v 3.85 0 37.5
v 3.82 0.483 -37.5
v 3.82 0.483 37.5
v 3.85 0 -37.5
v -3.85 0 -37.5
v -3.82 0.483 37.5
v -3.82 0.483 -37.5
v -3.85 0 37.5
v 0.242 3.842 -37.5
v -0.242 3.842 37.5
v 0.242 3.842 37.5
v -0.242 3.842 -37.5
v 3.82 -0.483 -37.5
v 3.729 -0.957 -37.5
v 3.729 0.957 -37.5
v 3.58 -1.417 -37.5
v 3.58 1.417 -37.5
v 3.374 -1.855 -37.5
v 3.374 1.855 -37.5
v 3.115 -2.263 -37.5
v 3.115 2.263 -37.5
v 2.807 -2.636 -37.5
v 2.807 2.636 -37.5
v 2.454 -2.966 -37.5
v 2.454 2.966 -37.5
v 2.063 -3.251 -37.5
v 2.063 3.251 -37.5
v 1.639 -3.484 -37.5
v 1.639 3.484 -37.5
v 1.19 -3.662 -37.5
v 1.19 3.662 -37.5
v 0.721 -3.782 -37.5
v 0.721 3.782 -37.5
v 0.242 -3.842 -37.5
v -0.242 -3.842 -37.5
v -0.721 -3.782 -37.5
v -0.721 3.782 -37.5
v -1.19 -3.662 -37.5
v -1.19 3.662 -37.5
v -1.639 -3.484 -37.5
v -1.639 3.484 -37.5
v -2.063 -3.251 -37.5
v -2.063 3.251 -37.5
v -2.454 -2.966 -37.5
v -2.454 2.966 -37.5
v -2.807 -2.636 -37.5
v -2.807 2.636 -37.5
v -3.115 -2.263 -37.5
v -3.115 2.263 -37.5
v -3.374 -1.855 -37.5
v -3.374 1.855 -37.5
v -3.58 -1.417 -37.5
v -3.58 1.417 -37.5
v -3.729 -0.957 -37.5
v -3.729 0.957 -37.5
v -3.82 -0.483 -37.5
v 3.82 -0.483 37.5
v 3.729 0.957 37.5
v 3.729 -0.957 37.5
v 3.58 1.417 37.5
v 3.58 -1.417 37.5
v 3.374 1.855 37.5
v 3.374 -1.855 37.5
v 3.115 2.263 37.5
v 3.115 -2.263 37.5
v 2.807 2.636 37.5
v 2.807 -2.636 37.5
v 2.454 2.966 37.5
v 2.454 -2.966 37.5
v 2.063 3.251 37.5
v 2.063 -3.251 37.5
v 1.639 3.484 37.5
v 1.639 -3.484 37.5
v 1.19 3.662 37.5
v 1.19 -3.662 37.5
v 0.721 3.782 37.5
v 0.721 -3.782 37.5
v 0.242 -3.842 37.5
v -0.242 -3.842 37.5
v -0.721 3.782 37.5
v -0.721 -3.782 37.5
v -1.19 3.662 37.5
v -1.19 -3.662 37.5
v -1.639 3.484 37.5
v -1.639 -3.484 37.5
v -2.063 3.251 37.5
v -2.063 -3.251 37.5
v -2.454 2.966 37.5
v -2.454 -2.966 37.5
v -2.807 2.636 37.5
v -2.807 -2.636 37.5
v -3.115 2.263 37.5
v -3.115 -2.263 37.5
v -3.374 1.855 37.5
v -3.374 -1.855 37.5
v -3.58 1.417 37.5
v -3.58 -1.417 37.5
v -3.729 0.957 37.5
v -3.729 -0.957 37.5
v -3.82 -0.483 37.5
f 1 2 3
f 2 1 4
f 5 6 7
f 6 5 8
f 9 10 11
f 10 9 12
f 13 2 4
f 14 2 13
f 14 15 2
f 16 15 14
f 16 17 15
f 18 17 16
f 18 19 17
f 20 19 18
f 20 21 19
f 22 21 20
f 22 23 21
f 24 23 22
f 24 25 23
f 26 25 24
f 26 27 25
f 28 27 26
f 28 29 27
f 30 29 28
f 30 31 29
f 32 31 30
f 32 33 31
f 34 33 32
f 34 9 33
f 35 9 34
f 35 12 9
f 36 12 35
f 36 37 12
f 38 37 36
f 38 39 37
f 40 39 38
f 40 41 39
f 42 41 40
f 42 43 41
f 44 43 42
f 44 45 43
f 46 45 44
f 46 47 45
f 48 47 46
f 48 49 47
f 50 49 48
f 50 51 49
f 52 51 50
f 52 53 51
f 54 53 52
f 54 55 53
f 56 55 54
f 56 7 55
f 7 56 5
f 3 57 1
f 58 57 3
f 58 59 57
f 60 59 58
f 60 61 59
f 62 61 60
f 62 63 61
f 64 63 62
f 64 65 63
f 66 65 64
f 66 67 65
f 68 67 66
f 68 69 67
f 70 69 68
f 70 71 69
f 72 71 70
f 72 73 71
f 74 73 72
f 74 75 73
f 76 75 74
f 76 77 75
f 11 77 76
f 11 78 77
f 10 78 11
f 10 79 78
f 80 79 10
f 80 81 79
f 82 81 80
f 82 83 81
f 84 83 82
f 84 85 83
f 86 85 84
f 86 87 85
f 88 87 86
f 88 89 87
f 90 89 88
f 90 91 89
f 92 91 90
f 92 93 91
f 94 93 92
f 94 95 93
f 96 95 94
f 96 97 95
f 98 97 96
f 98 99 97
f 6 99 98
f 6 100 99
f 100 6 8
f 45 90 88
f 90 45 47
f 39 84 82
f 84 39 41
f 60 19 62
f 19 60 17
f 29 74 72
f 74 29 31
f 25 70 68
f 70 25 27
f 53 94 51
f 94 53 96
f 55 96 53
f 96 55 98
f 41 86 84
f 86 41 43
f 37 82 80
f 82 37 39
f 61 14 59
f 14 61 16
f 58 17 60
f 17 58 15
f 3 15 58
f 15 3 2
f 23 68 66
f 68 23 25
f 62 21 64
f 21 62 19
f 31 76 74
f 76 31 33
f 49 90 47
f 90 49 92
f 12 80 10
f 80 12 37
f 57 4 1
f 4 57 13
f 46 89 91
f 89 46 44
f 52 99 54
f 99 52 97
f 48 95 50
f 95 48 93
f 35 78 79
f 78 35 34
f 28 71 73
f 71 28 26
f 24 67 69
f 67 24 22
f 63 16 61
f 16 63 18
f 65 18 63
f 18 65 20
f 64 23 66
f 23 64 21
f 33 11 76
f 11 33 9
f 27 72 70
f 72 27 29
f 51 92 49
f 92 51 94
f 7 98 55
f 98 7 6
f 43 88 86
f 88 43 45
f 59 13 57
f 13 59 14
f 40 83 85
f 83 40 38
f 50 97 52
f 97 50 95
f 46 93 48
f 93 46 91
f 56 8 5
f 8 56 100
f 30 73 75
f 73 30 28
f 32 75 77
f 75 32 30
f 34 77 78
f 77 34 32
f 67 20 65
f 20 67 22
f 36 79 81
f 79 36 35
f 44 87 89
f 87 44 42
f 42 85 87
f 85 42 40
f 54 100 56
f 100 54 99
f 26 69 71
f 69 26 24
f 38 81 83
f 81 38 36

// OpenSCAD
$fn = 50;


difference() {
	union() {
		translate(v = [0, 0, -37.5000000000]) {
			cylinder(h = 75, r = 3.8500000000);
		}
	}
	union() {
		translate(v = [0, 0, -100.0000000000]) {
			cylinder(h = 200, r = 0);
		}
	}
}
